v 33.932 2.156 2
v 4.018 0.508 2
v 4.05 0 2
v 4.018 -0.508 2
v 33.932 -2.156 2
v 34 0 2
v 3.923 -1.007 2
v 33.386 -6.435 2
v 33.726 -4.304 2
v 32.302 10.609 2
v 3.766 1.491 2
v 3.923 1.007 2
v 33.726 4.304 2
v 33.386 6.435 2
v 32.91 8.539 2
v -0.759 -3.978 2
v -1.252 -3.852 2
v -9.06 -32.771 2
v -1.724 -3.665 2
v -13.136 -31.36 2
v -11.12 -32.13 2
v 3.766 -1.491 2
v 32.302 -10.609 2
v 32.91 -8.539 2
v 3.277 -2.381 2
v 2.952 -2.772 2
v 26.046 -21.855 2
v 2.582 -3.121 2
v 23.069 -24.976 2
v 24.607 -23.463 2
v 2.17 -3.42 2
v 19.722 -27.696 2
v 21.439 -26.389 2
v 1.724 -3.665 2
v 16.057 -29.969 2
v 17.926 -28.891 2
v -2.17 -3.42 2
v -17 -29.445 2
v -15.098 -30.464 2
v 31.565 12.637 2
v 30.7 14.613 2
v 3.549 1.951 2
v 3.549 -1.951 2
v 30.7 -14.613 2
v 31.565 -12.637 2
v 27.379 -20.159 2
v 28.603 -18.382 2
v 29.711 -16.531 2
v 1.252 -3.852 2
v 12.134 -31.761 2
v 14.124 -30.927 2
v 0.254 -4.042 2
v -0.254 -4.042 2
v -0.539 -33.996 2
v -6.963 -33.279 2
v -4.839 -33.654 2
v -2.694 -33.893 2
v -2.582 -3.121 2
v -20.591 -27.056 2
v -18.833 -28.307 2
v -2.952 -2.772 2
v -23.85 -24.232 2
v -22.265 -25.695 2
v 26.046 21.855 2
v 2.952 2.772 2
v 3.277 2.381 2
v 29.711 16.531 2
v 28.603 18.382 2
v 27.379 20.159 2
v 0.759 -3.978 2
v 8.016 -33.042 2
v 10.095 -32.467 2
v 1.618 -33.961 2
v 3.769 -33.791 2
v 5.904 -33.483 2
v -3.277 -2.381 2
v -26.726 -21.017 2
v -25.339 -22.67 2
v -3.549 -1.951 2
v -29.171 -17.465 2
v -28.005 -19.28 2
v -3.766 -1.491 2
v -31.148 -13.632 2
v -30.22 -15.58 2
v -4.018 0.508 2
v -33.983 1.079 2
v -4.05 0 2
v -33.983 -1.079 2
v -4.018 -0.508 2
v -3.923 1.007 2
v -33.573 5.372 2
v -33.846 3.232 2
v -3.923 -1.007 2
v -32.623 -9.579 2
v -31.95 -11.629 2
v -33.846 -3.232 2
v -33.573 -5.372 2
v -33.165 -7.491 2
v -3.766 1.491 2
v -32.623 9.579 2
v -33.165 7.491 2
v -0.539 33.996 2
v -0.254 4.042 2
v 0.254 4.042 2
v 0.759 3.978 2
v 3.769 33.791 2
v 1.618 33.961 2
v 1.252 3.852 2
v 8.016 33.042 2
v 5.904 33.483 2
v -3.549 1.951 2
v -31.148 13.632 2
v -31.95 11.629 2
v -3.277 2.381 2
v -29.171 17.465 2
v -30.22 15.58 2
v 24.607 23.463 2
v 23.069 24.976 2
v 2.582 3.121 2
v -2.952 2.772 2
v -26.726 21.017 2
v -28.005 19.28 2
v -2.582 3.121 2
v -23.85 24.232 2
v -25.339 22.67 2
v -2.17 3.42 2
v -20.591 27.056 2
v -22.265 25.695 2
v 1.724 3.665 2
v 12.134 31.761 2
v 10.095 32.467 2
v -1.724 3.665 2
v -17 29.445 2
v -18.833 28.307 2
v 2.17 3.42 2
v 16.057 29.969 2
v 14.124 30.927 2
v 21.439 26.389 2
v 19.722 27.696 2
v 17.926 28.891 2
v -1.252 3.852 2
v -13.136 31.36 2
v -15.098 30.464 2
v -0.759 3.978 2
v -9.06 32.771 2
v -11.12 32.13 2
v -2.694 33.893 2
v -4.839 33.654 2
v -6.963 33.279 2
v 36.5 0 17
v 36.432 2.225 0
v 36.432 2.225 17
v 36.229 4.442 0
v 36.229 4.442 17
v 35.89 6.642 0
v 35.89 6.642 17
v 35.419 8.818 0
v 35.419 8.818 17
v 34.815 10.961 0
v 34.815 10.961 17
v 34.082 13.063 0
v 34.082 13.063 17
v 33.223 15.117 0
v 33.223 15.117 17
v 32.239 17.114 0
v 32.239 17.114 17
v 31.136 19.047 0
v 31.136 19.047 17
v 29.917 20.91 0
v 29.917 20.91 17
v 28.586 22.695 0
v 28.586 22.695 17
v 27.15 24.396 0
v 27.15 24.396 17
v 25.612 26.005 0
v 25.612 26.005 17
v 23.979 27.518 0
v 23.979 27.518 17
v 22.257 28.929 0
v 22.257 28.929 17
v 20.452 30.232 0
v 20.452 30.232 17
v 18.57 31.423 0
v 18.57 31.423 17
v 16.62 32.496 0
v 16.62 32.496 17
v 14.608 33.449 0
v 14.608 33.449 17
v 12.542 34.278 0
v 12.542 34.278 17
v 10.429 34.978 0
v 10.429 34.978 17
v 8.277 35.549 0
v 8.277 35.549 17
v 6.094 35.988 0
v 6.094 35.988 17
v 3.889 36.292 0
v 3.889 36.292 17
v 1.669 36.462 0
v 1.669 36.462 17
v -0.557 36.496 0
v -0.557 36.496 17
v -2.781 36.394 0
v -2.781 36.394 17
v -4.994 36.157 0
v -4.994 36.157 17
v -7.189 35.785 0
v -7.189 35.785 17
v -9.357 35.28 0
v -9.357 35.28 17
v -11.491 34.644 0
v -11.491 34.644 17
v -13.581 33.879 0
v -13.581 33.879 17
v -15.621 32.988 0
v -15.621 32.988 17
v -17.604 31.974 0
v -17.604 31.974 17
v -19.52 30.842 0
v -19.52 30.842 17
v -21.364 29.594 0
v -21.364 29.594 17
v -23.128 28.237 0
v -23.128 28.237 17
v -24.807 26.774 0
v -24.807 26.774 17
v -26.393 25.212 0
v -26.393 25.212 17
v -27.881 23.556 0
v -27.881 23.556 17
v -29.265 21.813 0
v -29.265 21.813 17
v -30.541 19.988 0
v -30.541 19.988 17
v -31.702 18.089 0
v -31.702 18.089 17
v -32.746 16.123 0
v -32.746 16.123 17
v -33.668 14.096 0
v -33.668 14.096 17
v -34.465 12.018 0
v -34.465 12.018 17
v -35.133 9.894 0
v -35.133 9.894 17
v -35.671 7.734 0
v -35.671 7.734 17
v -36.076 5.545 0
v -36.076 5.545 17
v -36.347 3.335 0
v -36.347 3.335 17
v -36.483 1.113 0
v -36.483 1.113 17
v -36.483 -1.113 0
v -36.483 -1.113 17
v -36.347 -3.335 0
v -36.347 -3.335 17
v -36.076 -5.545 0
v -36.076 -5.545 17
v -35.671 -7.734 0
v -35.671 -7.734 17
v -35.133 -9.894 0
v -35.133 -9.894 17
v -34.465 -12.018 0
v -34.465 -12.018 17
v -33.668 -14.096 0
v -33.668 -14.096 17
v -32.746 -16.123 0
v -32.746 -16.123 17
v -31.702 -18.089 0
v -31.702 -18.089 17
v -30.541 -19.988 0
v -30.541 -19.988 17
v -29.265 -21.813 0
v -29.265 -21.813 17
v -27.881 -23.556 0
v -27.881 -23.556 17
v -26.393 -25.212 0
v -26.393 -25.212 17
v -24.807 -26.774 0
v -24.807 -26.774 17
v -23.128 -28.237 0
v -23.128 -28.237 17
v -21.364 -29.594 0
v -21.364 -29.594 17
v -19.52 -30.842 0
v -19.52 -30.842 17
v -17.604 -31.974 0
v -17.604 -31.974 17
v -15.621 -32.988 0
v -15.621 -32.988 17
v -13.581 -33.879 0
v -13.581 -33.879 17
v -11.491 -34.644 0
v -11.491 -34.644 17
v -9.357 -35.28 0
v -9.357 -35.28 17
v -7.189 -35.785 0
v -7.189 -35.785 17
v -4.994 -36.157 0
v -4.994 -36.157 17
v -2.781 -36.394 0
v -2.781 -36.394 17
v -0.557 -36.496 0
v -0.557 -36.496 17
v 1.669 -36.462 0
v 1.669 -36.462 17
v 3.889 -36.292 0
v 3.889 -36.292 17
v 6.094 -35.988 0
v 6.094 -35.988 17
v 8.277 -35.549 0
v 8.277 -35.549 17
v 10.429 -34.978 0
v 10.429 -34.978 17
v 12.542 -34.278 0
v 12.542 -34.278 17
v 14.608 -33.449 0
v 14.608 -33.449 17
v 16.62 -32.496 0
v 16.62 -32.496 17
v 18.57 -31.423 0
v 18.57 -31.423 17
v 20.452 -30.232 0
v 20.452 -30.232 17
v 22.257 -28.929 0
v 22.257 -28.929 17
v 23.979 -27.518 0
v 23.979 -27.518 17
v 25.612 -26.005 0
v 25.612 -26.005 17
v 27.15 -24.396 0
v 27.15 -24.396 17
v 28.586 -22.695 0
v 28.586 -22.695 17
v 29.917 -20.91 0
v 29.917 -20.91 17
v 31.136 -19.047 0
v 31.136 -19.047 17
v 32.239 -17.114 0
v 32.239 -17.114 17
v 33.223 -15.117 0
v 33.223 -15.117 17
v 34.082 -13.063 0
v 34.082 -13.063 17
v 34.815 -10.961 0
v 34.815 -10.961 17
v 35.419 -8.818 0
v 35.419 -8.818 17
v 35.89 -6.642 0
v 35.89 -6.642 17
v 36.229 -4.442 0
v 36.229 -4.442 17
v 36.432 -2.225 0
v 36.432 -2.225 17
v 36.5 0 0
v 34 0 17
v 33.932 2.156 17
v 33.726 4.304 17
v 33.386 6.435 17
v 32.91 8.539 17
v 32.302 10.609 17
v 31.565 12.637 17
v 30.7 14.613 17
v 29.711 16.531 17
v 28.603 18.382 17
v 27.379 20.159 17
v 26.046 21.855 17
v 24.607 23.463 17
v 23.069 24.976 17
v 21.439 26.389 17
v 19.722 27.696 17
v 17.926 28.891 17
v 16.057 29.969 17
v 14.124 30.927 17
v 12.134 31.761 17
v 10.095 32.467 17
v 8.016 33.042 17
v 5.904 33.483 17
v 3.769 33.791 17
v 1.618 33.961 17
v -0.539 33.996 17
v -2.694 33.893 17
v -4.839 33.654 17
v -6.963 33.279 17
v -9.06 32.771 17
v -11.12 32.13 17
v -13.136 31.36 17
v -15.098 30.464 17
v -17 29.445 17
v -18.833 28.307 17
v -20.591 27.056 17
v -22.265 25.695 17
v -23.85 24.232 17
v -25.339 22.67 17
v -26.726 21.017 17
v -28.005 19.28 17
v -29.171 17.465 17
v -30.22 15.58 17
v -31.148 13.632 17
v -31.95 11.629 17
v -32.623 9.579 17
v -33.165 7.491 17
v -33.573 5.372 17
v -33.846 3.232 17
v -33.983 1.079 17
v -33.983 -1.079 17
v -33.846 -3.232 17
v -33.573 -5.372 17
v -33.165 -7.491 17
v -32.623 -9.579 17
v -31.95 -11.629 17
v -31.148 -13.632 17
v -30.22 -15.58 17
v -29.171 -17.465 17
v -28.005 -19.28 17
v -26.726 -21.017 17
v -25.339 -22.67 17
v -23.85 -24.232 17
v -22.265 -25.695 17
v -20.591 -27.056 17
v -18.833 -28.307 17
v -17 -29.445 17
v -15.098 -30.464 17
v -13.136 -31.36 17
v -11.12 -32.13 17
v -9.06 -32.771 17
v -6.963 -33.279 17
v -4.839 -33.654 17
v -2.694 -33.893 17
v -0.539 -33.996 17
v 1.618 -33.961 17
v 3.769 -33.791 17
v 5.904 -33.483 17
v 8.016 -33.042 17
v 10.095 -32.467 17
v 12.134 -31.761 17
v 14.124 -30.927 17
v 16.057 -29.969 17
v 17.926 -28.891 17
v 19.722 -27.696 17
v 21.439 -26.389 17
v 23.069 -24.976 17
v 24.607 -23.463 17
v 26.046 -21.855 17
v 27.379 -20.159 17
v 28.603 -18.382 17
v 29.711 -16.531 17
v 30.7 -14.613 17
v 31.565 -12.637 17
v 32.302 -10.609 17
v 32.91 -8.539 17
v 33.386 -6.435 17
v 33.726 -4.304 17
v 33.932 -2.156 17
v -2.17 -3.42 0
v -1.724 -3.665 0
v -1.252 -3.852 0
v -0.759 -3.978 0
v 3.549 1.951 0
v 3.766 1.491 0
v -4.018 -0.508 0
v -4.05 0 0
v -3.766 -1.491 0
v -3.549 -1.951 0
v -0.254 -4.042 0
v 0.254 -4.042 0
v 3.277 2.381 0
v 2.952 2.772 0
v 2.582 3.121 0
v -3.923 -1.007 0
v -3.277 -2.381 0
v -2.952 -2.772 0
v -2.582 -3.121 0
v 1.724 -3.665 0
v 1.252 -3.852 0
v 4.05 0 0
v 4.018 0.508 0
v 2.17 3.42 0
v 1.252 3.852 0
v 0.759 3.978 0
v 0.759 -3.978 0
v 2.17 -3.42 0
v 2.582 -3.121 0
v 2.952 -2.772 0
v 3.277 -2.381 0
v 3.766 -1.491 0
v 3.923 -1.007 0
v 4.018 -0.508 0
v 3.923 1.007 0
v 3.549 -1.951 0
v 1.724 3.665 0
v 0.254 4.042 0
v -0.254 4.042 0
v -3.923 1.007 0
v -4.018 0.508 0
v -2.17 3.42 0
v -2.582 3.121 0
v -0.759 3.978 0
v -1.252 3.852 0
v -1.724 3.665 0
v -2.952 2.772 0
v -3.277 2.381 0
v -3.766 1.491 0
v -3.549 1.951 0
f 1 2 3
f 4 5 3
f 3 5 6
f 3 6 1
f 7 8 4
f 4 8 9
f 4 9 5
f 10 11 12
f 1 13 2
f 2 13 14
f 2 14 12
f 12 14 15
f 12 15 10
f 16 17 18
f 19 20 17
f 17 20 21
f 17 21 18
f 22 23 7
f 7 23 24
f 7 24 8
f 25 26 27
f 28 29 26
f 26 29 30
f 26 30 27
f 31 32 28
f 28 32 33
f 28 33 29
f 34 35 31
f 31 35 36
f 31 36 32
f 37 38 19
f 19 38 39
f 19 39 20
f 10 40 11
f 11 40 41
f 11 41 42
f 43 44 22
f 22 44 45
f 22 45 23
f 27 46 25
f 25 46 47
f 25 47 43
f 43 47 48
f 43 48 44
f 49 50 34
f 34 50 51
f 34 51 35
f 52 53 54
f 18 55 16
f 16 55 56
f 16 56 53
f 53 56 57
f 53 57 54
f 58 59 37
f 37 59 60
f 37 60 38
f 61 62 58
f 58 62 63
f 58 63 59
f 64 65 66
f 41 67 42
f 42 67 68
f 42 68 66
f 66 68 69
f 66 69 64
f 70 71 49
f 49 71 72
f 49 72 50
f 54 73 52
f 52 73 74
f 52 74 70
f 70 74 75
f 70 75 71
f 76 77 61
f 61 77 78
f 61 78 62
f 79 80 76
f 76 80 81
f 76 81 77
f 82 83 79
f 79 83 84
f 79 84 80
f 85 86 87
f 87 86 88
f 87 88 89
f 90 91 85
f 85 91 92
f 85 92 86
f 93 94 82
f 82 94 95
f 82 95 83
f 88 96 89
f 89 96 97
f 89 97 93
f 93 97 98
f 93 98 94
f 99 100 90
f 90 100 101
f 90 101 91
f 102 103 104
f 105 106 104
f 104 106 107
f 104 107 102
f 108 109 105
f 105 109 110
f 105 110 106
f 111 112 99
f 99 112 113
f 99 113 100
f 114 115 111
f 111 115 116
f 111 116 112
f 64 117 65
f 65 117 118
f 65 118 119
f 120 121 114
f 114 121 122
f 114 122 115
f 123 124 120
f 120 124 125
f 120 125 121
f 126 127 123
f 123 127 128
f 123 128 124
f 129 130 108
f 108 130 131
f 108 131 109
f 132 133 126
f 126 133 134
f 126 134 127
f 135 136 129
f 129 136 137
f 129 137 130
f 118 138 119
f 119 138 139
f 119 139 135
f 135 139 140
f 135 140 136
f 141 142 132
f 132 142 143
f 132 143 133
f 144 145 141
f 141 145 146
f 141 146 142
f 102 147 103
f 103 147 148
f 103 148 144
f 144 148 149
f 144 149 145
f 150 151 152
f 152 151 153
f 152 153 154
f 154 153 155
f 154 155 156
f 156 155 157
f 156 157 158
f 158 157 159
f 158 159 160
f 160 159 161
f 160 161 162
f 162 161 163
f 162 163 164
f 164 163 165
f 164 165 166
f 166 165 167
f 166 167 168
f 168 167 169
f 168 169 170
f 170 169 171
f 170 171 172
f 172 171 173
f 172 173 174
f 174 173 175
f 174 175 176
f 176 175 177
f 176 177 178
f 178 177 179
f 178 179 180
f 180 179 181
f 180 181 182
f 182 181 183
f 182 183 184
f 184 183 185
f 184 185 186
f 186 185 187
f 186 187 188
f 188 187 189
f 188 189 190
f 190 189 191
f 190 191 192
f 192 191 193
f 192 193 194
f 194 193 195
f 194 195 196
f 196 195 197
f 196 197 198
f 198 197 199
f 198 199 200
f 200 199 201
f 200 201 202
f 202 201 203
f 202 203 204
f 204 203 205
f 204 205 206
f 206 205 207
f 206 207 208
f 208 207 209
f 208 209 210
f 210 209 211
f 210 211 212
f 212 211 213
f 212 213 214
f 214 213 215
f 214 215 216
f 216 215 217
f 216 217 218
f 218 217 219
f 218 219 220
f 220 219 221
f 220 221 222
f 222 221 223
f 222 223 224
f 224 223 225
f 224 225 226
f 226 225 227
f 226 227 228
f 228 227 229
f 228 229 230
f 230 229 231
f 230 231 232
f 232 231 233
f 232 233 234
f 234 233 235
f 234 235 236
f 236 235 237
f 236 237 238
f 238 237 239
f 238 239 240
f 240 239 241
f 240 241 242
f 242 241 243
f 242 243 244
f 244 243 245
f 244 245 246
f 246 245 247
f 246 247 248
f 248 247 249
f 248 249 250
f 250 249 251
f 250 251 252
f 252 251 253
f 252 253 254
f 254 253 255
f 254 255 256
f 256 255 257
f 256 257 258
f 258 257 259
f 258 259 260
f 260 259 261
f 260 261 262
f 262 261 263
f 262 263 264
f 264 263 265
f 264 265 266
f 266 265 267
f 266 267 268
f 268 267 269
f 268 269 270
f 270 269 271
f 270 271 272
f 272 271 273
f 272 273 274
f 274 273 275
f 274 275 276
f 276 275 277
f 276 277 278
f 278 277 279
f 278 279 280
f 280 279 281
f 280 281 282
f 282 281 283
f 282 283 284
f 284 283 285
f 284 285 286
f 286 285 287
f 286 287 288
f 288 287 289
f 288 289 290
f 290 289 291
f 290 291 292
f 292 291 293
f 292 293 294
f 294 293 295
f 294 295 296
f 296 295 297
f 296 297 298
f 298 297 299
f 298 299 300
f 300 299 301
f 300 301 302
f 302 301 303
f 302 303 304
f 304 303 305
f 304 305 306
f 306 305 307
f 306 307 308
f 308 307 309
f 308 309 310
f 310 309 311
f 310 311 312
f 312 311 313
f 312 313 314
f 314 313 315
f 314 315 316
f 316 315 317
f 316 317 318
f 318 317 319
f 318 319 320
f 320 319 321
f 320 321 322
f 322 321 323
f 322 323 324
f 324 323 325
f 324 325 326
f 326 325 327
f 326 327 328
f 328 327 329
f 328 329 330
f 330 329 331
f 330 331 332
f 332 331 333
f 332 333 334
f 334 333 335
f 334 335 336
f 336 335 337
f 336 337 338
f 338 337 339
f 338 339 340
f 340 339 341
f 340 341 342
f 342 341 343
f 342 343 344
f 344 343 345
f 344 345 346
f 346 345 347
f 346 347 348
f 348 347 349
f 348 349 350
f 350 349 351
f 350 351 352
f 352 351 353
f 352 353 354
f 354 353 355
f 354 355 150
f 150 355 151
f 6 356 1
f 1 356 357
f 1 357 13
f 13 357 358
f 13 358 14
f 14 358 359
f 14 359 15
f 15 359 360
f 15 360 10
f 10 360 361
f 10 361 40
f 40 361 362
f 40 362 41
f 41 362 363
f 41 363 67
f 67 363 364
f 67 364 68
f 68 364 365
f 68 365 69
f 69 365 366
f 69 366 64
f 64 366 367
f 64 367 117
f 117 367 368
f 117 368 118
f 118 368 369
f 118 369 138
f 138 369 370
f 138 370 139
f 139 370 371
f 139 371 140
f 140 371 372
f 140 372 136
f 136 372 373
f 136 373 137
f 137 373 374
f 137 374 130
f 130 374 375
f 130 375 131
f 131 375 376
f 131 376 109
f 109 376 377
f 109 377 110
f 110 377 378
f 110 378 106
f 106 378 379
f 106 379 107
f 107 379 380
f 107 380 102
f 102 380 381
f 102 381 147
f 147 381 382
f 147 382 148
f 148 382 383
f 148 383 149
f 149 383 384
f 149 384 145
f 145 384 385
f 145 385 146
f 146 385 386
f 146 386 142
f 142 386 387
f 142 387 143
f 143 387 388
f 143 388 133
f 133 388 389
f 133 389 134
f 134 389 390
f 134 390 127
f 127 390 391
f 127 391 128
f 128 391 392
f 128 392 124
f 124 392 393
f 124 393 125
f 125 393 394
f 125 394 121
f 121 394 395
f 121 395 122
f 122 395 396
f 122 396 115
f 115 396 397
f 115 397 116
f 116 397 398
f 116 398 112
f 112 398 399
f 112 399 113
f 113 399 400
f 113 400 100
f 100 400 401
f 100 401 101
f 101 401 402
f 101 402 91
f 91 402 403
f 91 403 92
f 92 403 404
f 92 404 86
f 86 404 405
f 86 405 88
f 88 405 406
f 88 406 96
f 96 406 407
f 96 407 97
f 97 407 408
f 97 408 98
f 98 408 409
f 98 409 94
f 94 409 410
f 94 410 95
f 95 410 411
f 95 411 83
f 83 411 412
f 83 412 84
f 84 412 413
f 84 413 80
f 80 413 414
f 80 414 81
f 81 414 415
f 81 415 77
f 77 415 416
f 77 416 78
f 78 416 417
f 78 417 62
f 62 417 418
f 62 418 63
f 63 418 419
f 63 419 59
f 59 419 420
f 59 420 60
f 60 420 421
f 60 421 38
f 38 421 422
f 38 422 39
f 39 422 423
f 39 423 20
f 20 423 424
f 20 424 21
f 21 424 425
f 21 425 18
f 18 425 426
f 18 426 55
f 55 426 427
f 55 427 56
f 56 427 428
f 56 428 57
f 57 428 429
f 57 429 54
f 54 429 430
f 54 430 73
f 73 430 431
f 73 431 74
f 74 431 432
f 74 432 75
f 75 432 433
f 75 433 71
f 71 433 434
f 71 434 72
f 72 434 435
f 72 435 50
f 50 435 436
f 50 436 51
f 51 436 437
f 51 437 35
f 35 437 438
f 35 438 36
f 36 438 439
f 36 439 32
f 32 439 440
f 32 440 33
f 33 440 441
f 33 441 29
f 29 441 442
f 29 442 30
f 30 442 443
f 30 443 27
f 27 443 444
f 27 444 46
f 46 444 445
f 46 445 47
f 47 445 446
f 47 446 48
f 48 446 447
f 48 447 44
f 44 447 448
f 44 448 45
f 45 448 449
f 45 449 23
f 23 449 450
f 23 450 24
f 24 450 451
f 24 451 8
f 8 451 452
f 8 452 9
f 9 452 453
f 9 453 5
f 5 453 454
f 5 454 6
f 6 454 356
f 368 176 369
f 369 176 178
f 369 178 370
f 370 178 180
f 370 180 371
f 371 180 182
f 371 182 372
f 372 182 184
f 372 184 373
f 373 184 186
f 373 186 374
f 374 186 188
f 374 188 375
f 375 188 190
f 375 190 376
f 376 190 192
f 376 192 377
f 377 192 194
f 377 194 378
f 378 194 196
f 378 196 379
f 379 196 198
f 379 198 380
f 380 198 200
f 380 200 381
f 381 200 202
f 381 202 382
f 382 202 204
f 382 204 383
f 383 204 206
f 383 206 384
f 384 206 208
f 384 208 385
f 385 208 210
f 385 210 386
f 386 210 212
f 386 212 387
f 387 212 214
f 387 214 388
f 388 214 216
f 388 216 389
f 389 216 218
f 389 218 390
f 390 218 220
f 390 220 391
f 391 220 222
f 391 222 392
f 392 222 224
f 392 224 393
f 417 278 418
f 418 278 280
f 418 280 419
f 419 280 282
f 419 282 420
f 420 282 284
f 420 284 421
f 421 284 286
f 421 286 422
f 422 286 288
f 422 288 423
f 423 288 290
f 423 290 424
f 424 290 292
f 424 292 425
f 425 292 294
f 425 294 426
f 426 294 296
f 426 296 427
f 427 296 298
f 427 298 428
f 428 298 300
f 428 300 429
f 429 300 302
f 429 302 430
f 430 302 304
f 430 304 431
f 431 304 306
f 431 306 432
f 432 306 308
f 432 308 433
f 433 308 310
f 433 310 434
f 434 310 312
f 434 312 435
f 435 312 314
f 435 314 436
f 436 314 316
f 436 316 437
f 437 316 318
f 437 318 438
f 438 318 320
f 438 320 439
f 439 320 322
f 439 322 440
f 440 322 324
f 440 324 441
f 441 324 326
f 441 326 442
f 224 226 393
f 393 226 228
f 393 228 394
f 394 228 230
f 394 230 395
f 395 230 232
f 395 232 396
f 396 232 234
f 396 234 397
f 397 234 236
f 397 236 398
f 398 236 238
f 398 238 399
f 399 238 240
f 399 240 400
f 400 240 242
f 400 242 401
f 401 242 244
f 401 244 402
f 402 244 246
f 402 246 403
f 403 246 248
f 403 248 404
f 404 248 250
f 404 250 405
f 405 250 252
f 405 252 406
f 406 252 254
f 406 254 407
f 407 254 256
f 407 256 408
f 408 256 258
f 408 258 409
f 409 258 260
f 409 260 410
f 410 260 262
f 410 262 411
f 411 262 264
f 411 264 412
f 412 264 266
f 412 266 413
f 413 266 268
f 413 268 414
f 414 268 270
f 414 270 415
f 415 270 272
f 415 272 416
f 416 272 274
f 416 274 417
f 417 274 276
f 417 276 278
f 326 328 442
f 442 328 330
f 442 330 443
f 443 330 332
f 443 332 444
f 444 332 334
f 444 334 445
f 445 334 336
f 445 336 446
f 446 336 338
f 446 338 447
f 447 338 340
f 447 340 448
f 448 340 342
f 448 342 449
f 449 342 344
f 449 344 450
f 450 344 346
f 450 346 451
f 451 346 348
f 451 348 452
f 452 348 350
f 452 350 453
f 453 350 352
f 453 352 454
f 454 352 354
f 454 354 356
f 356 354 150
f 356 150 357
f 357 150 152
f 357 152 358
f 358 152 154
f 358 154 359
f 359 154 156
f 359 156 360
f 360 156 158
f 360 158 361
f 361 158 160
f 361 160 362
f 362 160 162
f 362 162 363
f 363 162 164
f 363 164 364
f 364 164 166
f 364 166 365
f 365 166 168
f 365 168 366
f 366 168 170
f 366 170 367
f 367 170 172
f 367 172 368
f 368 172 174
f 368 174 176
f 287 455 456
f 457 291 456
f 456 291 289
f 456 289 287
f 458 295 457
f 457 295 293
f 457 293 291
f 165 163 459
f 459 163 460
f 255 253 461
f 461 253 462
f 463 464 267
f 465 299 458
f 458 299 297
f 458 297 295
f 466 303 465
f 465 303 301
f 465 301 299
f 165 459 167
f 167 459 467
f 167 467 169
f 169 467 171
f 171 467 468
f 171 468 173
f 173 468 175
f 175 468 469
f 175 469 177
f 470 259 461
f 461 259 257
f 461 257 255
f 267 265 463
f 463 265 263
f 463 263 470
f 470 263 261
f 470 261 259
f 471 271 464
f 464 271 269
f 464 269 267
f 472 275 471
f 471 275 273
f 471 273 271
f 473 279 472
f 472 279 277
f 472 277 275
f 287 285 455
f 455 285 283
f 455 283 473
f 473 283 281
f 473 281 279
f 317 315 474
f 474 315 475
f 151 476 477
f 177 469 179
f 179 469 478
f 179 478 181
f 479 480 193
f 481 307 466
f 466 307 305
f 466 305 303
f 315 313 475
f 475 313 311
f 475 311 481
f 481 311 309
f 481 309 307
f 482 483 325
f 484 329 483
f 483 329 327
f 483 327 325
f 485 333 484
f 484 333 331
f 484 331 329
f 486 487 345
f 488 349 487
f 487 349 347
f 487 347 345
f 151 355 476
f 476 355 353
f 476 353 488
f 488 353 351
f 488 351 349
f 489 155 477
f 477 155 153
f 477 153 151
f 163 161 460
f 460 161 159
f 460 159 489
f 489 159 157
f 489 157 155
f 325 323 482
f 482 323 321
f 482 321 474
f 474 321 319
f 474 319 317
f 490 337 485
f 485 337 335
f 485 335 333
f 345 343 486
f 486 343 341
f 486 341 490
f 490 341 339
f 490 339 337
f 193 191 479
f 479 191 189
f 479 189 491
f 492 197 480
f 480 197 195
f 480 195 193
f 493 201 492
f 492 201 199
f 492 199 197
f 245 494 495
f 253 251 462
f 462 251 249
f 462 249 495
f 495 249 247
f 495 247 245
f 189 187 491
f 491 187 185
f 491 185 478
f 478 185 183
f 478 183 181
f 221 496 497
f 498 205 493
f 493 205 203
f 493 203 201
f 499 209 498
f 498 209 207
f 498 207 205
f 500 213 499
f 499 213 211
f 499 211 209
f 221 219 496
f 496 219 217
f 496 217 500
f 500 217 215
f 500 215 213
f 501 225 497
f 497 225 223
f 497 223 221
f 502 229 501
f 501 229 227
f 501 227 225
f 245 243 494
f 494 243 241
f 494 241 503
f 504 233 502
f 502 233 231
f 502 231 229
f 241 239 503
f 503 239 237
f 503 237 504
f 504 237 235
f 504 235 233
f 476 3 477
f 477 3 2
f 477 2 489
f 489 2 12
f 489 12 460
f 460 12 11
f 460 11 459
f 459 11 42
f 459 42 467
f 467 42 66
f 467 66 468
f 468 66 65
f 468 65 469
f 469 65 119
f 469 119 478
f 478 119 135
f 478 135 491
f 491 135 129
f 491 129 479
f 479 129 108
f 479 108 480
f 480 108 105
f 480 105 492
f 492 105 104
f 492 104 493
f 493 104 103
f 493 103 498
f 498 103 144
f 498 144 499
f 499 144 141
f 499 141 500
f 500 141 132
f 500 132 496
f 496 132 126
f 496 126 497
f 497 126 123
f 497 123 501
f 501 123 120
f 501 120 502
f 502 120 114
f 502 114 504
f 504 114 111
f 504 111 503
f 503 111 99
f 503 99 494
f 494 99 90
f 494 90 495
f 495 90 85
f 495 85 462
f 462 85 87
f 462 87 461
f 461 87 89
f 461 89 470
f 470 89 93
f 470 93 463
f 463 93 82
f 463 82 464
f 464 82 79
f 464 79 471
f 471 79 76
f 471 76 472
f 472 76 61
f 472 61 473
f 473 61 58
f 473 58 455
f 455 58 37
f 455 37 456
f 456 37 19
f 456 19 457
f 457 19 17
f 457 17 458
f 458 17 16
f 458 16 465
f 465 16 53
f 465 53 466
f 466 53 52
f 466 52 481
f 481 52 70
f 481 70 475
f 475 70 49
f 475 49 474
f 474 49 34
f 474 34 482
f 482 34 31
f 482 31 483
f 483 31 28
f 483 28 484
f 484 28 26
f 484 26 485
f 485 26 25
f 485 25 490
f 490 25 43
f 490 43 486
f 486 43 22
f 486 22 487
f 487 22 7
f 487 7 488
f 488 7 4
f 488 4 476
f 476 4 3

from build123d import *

# Parameters (mm, degrees)
ESQUISSE1_R                  = 34
BOSS_EXTRU_1_DEPTH           = 2
ESQUISSE2_R                  = 36.5
ESQUISSE2_R_2                = 34
BOSS_EXTRU_2_DEPTH           = 15
BOSS_EXTRU_2_DEPTH_BACK      = 2
ESQUISSE3_R                  = 4.05
ENL_V_MAT_EXTRU_1_DEPTH      = 16
ENL_V_MAT_EXTRU_1_DEPTH_BACK = 3


with BuildPart() as part:
    # Esquisse1 → Boss.-Extru.1 (new body)
    with BuildSketch(Plane.XY):
        Circle(ESQUISSE1_R)
    extrude(amount=BOSS_EXTRU_1_DEPTH)

    # Esquisse2 → Boss.-Extru.2 (add, two sides)
    with BuildSketch(Plane.XY.offset(2)) as boss_extru_2_sk:
        Circle(ESQUISSE2_R)
        Circle(ESQUISSE2_R_2, mode=Mode.SUBTRACT)
    extrude(amount=BOSS_EXTRU_2_DEPTH)
    extrude(boss_extru_2_sk.sketch, amount=-BOSS_EXTRU_2_DEPTH_BACK)

    # Esquisse3 → Enlèv. mat.-Extru.1 (cut, two sides)
    with BuildSketch(Plane.XY.offset(2)) as enl_v_mat_extru_1_sk:
        Circle(ESQUISSE3_R)
    extrude(amount=ENL_V_MAT_EXTRU_1_DEPTH, mode=Mode.SUBTRACT)
    extrude(enl_v_mat_extru_1_sk.sketch, amount=-ENL_V_MAT_EXTRU_1_DEPTH_BACK, mode=Mode.SUBTRACT)


solid = part.part
